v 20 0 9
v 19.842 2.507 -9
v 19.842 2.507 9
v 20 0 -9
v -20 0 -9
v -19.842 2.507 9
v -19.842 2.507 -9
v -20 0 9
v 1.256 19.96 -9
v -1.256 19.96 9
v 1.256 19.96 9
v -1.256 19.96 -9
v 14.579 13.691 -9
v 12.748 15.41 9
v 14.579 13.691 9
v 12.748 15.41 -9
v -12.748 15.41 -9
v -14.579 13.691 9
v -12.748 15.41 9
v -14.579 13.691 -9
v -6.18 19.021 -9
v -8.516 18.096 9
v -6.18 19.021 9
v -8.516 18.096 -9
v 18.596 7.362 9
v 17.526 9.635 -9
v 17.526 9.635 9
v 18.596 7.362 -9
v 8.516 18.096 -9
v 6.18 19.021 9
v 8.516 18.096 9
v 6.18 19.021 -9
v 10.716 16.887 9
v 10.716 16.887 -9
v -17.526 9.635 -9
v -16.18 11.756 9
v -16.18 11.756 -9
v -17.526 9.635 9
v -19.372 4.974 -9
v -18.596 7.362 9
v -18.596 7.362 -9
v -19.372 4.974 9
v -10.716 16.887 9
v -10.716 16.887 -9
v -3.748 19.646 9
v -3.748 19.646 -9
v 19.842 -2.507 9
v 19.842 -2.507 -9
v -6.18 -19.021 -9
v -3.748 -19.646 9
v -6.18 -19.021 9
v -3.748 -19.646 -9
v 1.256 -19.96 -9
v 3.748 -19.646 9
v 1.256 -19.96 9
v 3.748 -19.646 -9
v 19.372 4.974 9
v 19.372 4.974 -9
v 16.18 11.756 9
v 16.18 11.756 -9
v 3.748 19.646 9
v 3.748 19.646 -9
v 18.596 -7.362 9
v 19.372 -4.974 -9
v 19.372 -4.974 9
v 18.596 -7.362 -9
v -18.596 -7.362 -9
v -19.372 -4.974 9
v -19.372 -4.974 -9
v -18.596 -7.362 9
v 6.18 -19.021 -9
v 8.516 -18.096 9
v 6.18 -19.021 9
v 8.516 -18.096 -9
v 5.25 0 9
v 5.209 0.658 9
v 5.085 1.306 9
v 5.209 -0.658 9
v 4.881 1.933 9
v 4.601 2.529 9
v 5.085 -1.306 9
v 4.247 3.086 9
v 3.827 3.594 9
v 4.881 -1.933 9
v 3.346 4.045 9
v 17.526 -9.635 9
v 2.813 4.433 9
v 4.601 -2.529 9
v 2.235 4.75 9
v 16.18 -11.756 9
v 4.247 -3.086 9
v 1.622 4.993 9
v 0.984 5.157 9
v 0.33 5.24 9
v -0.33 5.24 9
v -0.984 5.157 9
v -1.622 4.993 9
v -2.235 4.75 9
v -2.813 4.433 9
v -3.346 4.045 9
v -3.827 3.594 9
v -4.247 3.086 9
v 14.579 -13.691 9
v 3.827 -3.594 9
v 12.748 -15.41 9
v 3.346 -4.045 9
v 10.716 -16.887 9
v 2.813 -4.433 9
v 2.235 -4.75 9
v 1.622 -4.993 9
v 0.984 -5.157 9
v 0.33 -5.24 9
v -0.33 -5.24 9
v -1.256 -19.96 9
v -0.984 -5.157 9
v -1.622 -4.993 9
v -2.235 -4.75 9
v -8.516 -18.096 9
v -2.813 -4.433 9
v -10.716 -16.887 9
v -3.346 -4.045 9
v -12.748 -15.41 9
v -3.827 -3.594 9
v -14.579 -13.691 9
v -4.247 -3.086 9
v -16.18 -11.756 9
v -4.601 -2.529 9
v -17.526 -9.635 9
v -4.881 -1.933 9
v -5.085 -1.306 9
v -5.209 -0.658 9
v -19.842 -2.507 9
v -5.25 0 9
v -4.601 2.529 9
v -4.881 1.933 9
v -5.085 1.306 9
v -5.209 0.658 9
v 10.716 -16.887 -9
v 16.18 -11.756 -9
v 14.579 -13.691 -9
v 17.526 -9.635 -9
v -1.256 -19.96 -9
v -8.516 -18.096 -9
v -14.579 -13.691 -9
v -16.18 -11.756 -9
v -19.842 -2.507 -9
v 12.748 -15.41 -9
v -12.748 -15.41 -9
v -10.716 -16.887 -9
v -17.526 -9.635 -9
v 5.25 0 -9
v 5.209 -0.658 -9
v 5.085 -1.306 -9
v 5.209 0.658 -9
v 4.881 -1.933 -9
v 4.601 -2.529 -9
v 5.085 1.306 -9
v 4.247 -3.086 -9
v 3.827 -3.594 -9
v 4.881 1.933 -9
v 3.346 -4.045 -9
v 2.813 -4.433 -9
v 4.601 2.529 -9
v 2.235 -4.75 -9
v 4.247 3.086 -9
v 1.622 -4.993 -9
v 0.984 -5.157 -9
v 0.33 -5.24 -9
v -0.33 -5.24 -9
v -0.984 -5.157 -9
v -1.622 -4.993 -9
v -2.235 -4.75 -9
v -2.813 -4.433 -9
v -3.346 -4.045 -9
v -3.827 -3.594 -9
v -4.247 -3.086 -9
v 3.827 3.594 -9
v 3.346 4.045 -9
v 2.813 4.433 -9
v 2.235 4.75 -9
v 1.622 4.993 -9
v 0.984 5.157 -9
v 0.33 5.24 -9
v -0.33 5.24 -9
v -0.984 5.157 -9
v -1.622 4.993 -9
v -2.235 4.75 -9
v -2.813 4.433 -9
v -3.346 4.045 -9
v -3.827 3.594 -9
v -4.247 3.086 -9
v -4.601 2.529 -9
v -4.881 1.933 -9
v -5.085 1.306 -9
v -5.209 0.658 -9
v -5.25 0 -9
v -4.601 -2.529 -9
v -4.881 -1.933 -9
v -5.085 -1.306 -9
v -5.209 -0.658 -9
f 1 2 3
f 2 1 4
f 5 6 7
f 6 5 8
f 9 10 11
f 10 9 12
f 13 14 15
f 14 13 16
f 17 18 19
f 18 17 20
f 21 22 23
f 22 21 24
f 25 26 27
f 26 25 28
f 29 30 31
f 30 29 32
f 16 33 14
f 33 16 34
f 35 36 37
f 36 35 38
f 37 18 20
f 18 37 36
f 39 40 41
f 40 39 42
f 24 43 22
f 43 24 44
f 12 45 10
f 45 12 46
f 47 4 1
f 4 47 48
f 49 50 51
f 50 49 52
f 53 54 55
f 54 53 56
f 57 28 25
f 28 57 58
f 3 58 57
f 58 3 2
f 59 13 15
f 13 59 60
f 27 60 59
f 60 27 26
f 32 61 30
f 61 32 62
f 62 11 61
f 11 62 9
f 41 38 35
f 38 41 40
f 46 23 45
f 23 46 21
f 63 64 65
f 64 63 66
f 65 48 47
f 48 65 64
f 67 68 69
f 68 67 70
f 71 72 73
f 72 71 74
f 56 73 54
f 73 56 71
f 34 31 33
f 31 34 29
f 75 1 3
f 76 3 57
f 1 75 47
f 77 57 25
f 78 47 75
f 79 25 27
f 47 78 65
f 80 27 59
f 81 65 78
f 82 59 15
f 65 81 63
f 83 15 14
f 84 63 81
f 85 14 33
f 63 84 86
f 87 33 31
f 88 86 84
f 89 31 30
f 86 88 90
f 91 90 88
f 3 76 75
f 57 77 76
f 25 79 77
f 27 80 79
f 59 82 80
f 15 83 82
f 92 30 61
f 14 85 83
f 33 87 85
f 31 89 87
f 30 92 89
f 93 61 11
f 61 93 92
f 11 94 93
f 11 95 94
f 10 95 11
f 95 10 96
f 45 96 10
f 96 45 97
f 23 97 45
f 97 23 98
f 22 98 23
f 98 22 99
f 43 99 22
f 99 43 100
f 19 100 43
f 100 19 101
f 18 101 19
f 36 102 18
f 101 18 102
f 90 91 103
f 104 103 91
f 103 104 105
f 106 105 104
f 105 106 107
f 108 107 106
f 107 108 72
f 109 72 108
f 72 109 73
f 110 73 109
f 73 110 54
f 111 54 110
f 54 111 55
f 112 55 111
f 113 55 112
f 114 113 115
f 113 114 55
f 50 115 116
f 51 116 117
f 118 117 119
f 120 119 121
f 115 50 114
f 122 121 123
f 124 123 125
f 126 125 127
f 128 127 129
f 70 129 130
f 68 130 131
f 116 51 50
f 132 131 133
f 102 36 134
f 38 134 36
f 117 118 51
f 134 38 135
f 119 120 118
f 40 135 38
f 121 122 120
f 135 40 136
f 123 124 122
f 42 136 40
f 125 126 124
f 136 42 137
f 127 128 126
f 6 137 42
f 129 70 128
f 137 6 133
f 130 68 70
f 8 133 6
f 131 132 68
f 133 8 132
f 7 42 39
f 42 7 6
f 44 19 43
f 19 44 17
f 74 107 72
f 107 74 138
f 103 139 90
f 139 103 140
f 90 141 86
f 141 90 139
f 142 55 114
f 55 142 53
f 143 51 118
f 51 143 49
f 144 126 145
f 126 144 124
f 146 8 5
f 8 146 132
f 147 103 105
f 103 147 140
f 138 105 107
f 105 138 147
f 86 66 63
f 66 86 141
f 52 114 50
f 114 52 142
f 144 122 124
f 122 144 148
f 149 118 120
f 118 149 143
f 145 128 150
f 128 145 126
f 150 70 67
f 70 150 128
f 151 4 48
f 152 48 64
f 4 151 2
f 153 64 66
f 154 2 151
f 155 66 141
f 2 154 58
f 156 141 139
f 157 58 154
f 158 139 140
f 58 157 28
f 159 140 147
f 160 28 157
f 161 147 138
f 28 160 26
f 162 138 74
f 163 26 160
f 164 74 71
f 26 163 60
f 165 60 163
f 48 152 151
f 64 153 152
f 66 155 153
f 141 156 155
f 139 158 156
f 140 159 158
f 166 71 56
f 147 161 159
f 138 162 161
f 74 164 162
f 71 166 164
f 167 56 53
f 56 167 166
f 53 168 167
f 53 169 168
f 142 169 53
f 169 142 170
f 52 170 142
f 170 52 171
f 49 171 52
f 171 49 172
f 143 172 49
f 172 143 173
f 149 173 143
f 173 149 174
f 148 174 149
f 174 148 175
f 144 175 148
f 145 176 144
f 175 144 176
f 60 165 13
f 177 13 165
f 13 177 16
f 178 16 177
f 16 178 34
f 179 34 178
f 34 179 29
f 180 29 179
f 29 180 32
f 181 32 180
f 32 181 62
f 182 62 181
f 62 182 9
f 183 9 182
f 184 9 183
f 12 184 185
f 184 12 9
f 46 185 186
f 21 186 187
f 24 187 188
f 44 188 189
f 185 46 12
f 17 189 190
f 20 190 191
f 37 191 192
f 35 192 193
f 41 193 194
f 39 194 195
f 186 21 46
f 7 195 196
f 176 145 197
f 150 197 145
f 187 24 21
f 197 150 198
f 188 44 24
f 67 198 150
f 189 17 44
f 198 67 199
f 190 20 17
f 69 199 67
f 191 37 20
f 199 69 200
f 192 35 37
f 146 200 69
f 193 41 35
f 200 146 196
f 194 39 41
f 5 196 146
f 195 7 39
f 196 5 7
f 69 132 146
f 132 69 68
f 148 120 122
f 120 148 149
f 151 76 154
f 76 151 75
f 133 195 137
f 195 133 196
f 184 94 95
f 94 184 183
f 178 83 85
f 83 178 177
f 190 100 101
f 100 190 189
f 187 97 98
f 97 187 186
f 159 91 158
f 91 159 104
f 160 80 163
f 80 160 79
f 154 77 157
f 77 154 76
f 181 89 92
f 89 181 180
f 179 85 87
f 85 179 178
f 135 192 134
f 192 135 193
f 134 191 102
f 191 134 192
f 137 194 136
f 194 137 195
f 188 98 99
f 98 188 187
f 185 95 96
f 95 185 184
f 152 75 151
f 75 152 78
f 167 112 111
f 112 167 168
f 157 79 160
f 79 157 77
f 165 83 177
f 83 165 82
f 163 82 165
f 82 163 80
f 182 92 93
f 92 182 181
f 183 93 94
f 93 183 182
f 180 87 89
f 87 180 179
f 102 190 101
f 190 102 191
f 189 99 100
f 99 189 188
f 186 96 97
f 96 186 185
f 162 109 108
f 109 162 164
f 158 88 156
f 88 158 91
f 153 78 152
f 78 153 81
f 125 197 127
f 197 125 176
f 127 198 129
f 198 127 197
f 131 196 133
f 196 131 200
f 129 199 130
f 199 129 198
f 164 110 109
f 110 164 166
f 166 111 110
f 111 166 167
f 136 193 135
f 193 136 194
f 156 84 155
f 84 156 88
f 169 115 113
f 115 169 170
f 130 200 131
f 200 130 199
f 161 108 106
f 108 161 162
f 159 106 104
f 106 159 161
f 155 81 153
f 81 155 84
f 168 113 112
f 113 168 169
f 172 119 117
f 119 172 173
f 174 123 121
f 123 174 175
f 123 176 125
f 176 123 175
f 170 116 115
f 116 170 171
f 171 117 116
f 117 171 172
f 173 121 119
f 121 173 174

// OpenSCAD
$fn = 50;


difference() {
	union() {
		translate(v = [0, 0, -9.0000000000]) {
			cylinder(h = 18, r = 20.0000000000);
		}
	}
	union() {
		translate(v = [0, 0, -100.0000000000]) {
			cylinder(h = 200, r = 5.2500000000);
		}
	}
}
